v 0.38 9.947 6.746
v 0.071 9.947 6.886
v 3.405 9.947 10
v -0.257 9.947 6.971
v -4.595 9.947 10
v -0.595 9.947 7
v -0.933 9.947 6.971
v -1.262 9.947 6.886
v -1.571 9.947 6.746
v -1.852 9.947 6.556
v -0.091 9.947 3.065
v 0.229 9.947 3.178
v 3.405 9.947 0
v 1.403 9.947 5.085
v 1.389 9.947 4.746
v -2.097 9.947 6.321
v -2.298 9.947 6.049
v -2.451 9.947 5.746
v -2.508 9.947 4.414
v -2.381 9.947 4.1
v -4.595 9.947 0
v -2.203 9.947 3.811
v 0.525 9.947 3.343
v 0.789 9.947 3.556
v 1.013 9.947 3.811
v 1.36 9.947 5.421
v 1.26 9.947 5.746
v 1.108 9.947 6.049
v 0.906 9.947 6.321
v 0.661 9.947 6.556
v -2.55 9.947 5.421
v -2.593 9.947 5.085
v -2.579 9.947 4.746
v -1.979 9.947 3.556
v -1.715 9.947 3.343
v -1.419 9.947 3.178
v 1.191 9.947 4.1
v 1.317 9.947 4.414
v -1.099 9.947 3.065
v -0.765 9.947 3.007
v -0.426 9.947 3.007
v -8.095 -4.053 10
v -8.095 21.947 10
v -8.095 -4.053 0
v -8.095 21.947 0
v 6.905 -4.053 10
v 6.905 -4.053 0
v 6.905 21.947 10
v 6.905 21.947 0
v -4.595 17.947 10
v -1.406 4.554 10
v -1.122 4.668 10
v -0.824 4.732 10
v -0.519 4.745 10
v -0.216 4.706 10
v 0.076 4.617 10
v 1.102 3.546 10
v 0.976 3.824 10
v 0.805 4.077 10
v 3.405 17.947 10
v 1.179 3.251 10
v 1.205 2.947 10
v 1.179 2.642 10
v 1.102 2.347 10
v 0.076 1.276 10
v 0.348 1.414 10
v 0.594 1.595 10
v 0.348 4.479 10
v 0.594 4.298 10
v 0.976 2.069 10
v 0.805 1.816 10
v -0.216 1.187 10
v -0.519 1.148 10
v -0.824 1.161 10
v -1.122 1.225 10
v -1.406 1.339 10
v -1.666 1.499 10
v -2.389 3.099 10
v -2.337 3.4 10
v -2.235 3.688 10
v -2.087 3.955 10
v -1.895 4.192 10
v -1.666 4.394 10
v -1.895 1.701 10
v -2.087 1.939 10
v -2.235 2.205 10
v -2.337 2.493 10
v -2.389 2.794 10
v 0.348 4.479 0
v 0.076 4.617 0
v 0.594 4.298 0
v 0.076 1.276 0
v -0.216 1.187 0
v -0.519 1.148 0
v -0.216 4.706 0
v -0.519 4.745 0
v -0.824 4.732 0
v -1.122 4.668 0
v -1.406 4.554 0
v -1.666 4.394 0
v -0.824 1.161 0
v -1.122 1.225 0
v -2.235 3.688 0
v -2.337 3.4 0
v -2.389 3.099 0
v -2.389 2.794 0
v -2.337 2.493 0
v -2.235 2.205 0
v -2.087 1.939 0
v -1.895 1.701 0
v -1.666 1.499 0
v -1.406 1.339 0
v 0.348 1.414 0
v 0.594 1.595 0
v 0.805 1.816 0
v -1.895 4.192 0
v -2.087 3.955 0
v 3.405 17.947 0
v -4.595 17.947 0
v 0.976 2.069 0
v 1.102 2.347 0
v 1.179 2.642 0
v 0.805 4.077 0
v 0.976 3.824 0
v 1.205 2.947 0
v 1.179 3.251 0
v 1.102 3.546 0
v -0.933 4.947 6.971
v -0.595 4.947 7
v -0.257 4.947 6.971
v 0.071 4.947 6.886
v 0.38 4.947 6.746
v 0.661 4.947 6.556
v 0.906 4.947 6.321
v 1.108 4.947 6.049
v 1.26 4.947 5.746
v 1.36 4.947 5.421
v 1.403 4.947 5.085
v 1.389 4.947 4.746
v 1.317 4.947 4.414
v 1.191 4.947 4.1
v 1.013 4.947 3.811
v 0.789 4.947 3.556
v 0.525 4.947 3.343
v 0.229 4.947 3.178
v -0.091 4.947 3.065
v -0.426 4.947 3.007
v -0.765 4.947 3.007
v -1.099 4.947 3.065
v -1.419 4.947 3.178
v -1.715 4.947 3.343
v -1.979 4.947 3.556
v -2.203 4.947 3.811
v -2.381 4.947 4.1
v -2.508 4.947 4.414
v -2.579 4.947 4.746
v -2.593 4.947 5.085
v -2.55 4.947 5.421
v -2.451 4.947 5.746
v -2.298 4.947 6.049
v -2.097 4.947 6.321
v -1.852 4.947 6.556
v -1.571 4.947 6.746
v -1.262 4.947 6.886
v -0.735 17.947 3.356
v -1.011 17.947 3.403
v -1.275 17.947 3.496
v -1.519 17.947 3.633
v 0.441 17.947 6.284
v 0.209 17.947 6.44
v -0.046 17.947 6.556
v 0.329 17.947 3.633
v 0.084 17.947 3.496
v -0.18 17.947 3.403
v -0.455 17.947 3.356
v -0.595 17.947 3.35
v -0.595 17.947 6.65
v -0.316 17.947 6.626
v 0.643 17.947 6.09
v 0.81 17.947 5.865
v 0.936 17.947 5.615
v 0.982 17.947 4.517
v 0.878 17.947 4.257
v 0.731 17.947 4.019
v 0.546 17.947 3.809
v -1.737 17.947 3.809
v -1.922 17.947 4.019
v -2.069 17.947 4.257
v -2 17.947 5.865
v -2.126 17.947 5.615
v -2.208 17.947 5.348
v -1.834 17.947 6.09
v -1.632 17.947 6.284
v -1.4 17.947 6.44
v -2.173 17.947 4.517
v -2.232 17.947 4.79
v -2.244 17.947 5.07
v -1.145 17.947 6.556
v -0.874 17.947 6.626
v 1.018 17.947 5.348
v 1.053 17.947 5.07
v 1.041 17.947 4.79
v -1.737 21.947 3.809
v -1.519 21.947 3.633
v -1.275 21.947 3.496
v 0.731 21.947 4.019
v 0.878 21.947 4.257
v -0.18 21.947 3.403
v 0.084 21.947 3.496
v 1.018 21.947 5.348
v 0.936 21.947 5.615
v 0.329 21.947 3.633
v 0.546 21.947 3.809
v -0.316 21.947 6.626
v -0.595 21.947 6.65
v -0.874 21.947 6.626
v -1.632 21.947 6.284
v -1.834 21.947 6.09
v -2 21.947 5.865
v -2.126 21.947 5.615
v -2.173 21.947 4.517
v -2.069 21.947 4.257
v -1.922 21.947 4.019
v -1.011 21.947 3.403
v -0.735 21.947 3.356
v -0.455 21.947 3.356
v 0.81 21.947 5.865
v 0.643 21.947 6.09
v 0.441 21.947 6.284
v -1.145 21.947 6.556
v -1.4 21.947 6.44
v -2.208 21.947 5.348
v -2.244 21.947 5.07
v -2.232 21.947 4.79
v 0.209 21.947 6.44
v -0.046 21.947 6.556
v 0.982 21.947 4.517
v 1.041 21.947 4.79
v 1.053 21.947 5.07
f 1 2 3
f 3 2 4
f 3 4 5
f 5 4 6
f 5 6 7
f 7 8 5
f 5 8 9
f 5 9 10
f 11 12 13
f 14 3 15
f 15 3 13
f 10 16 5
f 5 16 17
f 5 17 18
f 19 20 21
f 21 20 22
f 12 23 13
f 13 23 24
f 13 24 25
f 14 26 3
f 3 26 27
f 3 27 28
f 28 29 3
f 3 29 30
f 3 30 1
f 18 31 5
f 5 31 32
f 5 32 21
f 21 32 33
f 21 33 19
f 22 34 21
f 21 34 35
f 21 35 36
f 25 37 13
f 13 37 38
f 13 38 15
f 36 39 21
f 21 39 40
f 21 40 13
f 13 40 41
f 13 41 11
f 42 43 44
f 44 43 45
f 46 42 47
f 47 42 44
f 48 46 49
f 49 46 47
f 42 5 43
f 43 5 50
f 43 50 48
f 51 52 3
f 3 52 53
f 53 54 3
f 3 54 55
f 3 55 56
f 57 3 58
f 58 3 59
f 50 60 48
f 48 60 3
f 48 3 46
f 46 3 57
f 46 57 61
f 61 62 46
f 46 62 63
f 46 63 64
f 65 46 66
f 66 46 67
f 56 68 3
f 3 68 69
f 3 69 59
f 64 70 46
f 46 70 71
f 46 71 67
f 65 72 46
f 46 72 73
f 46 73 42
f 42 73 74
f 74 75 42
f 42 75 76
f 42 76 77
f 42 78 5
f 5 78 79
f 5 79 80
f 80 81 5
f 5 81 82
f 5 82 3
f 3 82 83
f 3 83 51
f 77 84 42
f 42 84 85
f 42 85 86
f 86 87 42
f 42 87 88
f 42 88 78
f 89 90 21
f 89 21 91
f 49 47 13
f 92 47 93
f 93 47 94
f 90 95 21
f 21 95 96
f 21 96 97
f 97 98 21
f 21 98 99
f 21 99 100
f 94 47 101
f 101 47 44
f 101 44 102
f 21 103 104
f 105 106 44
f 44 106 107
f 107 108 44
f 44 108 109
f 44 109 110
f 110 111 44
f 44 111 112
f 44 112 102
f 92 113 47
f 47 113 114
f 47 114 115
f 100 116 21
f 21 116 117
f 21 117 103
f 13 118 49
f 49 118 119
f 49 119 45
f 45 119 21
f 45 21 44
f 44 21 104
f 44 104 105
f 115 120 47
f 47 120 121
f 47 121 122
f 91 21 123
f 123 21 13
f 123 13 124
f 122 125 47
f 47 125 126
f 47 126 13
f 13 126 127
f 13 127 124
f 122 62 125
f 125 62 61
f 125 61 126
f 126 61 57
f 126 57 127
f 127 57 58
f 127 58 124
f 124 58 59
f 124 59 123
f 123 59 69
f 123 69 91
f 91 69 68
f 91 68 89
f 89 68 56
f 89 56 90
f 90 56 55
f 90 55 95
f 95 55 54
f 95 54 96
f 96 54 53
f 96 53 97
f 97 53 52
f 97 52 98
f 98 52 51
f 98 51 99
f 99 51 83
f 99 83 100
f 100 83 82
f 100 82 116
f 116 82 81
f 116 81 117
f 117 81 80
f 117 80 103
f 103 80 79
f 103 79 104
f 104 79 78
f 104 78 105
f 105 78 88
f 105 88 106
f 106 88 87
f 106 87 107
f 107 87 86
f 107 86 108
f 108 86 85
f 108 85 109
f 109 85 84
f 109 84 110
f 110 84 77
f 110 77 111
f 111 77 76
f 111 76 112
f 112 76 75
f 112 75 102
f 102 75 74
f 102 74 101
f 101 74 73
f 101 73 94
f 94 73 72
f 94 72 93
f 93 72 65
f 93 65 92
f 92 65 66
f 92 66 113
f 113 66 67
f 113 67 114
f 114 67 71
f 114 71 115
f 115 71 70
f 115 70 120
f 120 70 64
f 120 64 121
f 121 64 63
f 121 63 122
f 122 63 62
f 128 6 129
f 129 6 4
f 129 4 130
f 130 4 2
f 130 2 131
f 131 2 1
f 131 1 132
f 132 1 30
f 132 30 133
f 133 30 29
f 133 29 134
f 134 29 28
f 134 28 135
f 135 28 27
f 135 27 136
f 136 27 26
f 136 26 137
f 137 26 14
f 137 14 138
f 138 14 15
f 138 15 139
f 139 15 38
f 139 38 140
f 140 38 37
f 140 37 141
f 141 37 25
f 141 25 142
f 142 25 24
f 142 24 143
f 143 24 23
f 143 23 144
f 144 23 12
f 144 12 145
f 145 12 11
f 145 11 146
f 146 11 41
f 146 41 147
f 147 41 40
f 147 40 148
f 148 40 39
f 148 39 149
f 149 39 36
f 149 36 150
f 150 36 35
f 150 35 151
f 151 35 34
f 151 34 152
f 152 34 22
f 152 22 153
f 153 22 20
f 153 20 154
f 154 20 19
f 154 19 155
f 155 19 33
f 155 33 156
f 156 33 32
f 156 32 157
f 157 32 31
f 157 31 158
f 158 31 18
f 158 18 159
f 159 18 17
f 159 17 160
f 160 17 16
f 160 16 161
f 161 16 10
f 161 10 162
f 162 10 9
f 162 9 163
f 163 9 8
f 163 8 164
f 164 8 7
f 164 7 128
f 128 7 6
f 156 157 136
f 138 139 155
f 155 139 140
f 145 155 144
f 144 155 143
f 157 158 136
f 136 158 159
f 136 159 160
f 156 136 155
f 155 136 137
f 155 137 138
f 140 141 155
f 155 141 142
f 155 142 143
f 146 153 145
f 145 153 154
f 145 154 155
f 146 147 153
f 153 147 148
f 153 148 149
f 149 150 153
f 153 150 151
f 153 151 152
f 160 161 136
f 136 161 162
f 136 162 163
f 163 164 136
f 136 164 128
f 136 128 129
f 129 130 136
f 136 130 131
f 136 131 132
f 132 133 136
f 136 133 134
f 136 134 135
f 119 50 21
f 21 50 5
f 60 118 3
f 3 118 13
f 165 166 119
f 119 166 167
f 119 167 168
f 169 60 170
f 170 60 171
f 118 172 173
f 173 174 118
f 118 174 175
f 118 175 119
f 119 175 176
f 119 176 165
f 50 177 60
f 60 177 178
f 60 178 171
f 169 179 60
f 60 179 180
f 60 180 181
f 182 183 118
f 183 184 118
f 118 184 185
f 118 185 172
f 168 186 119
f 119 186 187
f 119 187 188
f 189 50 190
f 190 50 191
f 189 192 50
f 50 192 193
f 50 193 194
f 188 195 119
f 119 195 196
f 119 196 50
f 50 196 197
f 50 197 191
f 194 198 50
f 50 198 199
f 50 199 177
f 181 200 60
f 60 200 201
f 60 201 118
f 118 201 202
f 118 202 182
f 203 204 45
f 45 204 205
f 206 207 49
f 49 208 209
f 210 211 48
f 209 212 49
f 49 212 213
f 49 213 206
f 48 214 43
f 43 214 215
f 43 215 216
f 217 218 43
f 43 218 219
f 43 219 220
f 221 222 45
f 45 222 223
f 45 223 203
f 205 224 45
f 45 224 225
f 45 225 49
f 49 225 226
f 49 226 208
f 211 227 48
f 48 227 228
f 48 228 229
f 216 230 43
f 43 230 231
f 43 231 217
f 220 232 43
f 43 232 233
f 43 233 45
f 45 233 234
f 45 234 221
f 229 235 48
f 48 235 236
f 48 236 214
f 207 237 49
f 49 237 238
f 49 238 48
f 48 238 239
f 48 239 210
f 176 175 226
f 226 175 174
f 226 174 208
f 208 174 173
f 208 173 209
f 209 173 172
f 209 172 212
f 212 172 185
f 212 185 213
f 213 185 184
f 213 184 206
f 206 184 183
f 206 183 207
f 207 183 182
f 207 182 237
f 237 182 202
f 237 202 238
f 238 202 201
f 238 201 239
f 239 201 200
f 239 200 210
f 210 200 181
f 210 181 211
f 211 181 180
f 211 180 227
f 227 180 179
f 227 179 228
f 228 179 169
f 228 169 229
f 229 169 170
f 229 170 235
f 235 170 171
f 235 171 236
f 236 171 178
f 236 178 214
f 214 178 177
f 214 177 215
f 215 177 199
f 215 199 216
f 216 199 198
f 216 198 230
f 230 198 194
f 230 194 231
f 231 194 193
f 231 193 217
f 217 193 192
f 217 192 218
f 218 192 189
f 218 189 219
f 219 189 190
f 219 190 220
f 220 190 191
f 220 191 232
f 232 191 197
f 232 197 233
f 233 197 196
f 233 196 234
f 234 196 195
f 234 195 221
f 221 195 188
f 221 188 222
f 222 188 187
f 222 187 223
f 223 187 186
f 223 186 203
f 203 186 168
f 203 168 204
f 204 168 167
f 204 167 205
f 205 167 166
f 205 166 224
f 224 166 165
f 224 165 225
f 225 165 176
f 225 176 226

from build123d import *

# Parameters (mm, degrees)
SKETCH1_W           = 15
SKETCH1_H           = 14
BOSS_EXTRUDE1_DEPTH = 10
SKETCH2_R           = 1.8
CUT_EXTRUDE1_DEPTH  = 17.26246018
SKETCH3_R           = 2
CUT_EXTRUDE2_DEPTH  = 5
SKETCH4_W           = 3.5
SKETCH4_H           = 10
BOSS_EXTRUDE2_DEPTH = 8
SKETCH5_W           = 15
SKETCH5_H           = 10
BOSS_EXTRUDE3_DEPTH = 4
SKETCH6_R           = 1.65
CUT_EXTRUDE3_DEPTH  = 4


with BuildPart() as part:
    # Sketch1 → Boss-Extrude1 (new body)
    with BuildSketch(Plane.XY):
        with Locations((-0.595285601, 2.94655529)):
            Rectangle(SKETCH1_W, SKETCH1_H)
    extrude(amount=BOSS_EXTRUDE1_DEPTH)

    # Sketch2 → Cut-Extrude1 (cut, through all)
    with BuildSketch(Plane.XY.offset(10)):
        with Locations((-0.595285601, 2.94655529)):
            Circle(SKETCH2_R)
    extrude(amount=-CUT_EXTRUDE1_DEPTH, mode=Mode.SUBTRACT)

    # Sketch3 → Cut-Extrude2 (cut)
    with BuildSketch(Plane(origin=(0, 9.94655529, 0), x_dir=(1, 0, 0), z_dir=(0, 1, 0))):
        with Locations(Location((-0.595285601, -5, 0), (0, 0, 270))):
            Circle(SKETCH3_R)
    extrude(amount=-CUT_EXTRUDE2_DEPTH, mode=Mode.SUBTRACT)

    # Sketch4 → Boss-Extrude2 (add)
    with BuildSketch(Plane(origin=(0, 9.94655529, 0), x_dir=(1, 0, 0), z_dir=(0, 1, 0))):
        with Locations((-6.345285601, -5)):
            Rectangle(SKETCH4_W, SKETCH4_H)
        with Locations((5.154714399, -5)):
            Rectangle(SKETCH4_W, SKETCH4_H)
    extrude(amount=BOSS_EXTRUDE2_DEPTH)

    # Sketch5 → Boss-Extrude3 (add)
    with BuildSketch(Plane(origin=(0, 17.94655529, 0), x_dir=(1, 0, 0), z_dir=(0, 1, 0))):
        with Locations((-0.595285601, -5)):
            Rectangle(SKETCH5_W, SKETCH5_H)
    extrude(amount=BOSS_EXTRUDE3_DEPTH)

    # Sketch6 → Cut-Extrude3 (cut)
    with BuildSketch(Plane(origin=(0, 21.94655529, 0), x_dir=(1, 0, 0), z_dir=(0, 1, 0))):
        with Locations(Location((-0.595285601, -5, 0), (0, 0, 270))):
            Circle(SKETCH6_R)
    extrude(amount=-CUT_EXTRUDE3_DEPTH, mode=Mode.SUBTRACT)


solid = part.part
